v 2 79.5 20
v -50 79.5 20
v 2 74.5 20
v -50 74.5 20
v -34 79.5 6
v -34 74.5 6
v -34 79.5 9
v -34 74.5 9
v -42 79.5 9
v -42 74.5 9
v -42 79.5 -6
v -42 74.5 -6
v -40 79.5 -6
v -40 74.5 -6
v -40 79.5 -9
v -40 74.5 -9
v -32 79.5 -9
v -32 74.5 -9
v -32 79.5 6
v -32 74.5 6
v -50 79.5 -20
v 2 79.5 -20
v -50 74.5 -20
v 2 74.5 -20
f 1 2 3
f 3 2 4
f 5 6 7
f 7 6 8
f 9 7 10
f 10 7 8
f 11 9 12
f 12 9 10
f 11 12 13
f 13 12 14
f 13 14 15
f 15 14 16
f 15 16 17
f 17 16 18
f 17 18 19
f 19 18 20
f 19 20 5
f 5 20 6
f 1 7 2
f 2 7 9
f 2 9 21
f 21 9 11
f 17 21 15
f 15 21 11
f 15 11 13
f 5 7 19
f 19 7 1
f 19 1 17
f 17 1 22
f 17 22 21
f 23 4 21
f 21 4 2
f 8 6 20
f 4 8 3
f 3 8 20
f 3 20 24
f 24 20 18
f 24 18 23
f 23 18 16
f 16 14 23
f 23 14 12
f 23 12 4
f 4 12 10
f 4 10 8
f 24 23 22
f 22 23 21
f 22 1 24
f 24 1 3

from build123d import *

# Parameters (mm, degrees)
STOCK_895_FRAME_1_START     = 74.5
STOCK_895_FRAME_1_OUTLINE_W = 50
STOCK_895_FRAME_1_OUTLINE_H = 40
STOCK_895_FRAME_1_DEPTH     = 5
SKETCH2_W                   = 5
SKETCH2_H                   = 40
BOSS_EXTRUDE1_DEPTH         = 2


# Read off the part's stored shape, not the designer's step: Stock-895_Frame-1
with BuildPart() as part:
    # Stock-895_Frame-1 outline → Stock-895_Frame-1 (new body)
    with BuildSketch(Plane(origin=(0, 0, 0), x_dir=(1, 0, 0), z_dir=(0, 1, 0)).offset(STOCK_895_FRAME_1_START)):
        with Locations((-25, 0)):
            Rectangle(STOCK_895_FRAME_1_OUTLINE_W, STOCK_895_FRAME_1_OUTLINE_H)
        Polygon((-34, -6), (-34, -9), (-42, -9), (-42, 6), (-40, 6), (-40, 9), (-32, 9), (-32, -6), align=None, mode=Mode.SUBTRACT)
    extrude(amount=STOCK_895_FRAME_1_DEPTH)

    # Sketch2 → Boss-Extrude1 (add)
    with BuildSketch(Plane.YZ):
        with Locations((77, 0)):
            Rectangle(SKETCH2_W, SKETCH2_H)
    extrude(amount=BOSS_EXTRUDE1_DEPTH)


solid = part.part
